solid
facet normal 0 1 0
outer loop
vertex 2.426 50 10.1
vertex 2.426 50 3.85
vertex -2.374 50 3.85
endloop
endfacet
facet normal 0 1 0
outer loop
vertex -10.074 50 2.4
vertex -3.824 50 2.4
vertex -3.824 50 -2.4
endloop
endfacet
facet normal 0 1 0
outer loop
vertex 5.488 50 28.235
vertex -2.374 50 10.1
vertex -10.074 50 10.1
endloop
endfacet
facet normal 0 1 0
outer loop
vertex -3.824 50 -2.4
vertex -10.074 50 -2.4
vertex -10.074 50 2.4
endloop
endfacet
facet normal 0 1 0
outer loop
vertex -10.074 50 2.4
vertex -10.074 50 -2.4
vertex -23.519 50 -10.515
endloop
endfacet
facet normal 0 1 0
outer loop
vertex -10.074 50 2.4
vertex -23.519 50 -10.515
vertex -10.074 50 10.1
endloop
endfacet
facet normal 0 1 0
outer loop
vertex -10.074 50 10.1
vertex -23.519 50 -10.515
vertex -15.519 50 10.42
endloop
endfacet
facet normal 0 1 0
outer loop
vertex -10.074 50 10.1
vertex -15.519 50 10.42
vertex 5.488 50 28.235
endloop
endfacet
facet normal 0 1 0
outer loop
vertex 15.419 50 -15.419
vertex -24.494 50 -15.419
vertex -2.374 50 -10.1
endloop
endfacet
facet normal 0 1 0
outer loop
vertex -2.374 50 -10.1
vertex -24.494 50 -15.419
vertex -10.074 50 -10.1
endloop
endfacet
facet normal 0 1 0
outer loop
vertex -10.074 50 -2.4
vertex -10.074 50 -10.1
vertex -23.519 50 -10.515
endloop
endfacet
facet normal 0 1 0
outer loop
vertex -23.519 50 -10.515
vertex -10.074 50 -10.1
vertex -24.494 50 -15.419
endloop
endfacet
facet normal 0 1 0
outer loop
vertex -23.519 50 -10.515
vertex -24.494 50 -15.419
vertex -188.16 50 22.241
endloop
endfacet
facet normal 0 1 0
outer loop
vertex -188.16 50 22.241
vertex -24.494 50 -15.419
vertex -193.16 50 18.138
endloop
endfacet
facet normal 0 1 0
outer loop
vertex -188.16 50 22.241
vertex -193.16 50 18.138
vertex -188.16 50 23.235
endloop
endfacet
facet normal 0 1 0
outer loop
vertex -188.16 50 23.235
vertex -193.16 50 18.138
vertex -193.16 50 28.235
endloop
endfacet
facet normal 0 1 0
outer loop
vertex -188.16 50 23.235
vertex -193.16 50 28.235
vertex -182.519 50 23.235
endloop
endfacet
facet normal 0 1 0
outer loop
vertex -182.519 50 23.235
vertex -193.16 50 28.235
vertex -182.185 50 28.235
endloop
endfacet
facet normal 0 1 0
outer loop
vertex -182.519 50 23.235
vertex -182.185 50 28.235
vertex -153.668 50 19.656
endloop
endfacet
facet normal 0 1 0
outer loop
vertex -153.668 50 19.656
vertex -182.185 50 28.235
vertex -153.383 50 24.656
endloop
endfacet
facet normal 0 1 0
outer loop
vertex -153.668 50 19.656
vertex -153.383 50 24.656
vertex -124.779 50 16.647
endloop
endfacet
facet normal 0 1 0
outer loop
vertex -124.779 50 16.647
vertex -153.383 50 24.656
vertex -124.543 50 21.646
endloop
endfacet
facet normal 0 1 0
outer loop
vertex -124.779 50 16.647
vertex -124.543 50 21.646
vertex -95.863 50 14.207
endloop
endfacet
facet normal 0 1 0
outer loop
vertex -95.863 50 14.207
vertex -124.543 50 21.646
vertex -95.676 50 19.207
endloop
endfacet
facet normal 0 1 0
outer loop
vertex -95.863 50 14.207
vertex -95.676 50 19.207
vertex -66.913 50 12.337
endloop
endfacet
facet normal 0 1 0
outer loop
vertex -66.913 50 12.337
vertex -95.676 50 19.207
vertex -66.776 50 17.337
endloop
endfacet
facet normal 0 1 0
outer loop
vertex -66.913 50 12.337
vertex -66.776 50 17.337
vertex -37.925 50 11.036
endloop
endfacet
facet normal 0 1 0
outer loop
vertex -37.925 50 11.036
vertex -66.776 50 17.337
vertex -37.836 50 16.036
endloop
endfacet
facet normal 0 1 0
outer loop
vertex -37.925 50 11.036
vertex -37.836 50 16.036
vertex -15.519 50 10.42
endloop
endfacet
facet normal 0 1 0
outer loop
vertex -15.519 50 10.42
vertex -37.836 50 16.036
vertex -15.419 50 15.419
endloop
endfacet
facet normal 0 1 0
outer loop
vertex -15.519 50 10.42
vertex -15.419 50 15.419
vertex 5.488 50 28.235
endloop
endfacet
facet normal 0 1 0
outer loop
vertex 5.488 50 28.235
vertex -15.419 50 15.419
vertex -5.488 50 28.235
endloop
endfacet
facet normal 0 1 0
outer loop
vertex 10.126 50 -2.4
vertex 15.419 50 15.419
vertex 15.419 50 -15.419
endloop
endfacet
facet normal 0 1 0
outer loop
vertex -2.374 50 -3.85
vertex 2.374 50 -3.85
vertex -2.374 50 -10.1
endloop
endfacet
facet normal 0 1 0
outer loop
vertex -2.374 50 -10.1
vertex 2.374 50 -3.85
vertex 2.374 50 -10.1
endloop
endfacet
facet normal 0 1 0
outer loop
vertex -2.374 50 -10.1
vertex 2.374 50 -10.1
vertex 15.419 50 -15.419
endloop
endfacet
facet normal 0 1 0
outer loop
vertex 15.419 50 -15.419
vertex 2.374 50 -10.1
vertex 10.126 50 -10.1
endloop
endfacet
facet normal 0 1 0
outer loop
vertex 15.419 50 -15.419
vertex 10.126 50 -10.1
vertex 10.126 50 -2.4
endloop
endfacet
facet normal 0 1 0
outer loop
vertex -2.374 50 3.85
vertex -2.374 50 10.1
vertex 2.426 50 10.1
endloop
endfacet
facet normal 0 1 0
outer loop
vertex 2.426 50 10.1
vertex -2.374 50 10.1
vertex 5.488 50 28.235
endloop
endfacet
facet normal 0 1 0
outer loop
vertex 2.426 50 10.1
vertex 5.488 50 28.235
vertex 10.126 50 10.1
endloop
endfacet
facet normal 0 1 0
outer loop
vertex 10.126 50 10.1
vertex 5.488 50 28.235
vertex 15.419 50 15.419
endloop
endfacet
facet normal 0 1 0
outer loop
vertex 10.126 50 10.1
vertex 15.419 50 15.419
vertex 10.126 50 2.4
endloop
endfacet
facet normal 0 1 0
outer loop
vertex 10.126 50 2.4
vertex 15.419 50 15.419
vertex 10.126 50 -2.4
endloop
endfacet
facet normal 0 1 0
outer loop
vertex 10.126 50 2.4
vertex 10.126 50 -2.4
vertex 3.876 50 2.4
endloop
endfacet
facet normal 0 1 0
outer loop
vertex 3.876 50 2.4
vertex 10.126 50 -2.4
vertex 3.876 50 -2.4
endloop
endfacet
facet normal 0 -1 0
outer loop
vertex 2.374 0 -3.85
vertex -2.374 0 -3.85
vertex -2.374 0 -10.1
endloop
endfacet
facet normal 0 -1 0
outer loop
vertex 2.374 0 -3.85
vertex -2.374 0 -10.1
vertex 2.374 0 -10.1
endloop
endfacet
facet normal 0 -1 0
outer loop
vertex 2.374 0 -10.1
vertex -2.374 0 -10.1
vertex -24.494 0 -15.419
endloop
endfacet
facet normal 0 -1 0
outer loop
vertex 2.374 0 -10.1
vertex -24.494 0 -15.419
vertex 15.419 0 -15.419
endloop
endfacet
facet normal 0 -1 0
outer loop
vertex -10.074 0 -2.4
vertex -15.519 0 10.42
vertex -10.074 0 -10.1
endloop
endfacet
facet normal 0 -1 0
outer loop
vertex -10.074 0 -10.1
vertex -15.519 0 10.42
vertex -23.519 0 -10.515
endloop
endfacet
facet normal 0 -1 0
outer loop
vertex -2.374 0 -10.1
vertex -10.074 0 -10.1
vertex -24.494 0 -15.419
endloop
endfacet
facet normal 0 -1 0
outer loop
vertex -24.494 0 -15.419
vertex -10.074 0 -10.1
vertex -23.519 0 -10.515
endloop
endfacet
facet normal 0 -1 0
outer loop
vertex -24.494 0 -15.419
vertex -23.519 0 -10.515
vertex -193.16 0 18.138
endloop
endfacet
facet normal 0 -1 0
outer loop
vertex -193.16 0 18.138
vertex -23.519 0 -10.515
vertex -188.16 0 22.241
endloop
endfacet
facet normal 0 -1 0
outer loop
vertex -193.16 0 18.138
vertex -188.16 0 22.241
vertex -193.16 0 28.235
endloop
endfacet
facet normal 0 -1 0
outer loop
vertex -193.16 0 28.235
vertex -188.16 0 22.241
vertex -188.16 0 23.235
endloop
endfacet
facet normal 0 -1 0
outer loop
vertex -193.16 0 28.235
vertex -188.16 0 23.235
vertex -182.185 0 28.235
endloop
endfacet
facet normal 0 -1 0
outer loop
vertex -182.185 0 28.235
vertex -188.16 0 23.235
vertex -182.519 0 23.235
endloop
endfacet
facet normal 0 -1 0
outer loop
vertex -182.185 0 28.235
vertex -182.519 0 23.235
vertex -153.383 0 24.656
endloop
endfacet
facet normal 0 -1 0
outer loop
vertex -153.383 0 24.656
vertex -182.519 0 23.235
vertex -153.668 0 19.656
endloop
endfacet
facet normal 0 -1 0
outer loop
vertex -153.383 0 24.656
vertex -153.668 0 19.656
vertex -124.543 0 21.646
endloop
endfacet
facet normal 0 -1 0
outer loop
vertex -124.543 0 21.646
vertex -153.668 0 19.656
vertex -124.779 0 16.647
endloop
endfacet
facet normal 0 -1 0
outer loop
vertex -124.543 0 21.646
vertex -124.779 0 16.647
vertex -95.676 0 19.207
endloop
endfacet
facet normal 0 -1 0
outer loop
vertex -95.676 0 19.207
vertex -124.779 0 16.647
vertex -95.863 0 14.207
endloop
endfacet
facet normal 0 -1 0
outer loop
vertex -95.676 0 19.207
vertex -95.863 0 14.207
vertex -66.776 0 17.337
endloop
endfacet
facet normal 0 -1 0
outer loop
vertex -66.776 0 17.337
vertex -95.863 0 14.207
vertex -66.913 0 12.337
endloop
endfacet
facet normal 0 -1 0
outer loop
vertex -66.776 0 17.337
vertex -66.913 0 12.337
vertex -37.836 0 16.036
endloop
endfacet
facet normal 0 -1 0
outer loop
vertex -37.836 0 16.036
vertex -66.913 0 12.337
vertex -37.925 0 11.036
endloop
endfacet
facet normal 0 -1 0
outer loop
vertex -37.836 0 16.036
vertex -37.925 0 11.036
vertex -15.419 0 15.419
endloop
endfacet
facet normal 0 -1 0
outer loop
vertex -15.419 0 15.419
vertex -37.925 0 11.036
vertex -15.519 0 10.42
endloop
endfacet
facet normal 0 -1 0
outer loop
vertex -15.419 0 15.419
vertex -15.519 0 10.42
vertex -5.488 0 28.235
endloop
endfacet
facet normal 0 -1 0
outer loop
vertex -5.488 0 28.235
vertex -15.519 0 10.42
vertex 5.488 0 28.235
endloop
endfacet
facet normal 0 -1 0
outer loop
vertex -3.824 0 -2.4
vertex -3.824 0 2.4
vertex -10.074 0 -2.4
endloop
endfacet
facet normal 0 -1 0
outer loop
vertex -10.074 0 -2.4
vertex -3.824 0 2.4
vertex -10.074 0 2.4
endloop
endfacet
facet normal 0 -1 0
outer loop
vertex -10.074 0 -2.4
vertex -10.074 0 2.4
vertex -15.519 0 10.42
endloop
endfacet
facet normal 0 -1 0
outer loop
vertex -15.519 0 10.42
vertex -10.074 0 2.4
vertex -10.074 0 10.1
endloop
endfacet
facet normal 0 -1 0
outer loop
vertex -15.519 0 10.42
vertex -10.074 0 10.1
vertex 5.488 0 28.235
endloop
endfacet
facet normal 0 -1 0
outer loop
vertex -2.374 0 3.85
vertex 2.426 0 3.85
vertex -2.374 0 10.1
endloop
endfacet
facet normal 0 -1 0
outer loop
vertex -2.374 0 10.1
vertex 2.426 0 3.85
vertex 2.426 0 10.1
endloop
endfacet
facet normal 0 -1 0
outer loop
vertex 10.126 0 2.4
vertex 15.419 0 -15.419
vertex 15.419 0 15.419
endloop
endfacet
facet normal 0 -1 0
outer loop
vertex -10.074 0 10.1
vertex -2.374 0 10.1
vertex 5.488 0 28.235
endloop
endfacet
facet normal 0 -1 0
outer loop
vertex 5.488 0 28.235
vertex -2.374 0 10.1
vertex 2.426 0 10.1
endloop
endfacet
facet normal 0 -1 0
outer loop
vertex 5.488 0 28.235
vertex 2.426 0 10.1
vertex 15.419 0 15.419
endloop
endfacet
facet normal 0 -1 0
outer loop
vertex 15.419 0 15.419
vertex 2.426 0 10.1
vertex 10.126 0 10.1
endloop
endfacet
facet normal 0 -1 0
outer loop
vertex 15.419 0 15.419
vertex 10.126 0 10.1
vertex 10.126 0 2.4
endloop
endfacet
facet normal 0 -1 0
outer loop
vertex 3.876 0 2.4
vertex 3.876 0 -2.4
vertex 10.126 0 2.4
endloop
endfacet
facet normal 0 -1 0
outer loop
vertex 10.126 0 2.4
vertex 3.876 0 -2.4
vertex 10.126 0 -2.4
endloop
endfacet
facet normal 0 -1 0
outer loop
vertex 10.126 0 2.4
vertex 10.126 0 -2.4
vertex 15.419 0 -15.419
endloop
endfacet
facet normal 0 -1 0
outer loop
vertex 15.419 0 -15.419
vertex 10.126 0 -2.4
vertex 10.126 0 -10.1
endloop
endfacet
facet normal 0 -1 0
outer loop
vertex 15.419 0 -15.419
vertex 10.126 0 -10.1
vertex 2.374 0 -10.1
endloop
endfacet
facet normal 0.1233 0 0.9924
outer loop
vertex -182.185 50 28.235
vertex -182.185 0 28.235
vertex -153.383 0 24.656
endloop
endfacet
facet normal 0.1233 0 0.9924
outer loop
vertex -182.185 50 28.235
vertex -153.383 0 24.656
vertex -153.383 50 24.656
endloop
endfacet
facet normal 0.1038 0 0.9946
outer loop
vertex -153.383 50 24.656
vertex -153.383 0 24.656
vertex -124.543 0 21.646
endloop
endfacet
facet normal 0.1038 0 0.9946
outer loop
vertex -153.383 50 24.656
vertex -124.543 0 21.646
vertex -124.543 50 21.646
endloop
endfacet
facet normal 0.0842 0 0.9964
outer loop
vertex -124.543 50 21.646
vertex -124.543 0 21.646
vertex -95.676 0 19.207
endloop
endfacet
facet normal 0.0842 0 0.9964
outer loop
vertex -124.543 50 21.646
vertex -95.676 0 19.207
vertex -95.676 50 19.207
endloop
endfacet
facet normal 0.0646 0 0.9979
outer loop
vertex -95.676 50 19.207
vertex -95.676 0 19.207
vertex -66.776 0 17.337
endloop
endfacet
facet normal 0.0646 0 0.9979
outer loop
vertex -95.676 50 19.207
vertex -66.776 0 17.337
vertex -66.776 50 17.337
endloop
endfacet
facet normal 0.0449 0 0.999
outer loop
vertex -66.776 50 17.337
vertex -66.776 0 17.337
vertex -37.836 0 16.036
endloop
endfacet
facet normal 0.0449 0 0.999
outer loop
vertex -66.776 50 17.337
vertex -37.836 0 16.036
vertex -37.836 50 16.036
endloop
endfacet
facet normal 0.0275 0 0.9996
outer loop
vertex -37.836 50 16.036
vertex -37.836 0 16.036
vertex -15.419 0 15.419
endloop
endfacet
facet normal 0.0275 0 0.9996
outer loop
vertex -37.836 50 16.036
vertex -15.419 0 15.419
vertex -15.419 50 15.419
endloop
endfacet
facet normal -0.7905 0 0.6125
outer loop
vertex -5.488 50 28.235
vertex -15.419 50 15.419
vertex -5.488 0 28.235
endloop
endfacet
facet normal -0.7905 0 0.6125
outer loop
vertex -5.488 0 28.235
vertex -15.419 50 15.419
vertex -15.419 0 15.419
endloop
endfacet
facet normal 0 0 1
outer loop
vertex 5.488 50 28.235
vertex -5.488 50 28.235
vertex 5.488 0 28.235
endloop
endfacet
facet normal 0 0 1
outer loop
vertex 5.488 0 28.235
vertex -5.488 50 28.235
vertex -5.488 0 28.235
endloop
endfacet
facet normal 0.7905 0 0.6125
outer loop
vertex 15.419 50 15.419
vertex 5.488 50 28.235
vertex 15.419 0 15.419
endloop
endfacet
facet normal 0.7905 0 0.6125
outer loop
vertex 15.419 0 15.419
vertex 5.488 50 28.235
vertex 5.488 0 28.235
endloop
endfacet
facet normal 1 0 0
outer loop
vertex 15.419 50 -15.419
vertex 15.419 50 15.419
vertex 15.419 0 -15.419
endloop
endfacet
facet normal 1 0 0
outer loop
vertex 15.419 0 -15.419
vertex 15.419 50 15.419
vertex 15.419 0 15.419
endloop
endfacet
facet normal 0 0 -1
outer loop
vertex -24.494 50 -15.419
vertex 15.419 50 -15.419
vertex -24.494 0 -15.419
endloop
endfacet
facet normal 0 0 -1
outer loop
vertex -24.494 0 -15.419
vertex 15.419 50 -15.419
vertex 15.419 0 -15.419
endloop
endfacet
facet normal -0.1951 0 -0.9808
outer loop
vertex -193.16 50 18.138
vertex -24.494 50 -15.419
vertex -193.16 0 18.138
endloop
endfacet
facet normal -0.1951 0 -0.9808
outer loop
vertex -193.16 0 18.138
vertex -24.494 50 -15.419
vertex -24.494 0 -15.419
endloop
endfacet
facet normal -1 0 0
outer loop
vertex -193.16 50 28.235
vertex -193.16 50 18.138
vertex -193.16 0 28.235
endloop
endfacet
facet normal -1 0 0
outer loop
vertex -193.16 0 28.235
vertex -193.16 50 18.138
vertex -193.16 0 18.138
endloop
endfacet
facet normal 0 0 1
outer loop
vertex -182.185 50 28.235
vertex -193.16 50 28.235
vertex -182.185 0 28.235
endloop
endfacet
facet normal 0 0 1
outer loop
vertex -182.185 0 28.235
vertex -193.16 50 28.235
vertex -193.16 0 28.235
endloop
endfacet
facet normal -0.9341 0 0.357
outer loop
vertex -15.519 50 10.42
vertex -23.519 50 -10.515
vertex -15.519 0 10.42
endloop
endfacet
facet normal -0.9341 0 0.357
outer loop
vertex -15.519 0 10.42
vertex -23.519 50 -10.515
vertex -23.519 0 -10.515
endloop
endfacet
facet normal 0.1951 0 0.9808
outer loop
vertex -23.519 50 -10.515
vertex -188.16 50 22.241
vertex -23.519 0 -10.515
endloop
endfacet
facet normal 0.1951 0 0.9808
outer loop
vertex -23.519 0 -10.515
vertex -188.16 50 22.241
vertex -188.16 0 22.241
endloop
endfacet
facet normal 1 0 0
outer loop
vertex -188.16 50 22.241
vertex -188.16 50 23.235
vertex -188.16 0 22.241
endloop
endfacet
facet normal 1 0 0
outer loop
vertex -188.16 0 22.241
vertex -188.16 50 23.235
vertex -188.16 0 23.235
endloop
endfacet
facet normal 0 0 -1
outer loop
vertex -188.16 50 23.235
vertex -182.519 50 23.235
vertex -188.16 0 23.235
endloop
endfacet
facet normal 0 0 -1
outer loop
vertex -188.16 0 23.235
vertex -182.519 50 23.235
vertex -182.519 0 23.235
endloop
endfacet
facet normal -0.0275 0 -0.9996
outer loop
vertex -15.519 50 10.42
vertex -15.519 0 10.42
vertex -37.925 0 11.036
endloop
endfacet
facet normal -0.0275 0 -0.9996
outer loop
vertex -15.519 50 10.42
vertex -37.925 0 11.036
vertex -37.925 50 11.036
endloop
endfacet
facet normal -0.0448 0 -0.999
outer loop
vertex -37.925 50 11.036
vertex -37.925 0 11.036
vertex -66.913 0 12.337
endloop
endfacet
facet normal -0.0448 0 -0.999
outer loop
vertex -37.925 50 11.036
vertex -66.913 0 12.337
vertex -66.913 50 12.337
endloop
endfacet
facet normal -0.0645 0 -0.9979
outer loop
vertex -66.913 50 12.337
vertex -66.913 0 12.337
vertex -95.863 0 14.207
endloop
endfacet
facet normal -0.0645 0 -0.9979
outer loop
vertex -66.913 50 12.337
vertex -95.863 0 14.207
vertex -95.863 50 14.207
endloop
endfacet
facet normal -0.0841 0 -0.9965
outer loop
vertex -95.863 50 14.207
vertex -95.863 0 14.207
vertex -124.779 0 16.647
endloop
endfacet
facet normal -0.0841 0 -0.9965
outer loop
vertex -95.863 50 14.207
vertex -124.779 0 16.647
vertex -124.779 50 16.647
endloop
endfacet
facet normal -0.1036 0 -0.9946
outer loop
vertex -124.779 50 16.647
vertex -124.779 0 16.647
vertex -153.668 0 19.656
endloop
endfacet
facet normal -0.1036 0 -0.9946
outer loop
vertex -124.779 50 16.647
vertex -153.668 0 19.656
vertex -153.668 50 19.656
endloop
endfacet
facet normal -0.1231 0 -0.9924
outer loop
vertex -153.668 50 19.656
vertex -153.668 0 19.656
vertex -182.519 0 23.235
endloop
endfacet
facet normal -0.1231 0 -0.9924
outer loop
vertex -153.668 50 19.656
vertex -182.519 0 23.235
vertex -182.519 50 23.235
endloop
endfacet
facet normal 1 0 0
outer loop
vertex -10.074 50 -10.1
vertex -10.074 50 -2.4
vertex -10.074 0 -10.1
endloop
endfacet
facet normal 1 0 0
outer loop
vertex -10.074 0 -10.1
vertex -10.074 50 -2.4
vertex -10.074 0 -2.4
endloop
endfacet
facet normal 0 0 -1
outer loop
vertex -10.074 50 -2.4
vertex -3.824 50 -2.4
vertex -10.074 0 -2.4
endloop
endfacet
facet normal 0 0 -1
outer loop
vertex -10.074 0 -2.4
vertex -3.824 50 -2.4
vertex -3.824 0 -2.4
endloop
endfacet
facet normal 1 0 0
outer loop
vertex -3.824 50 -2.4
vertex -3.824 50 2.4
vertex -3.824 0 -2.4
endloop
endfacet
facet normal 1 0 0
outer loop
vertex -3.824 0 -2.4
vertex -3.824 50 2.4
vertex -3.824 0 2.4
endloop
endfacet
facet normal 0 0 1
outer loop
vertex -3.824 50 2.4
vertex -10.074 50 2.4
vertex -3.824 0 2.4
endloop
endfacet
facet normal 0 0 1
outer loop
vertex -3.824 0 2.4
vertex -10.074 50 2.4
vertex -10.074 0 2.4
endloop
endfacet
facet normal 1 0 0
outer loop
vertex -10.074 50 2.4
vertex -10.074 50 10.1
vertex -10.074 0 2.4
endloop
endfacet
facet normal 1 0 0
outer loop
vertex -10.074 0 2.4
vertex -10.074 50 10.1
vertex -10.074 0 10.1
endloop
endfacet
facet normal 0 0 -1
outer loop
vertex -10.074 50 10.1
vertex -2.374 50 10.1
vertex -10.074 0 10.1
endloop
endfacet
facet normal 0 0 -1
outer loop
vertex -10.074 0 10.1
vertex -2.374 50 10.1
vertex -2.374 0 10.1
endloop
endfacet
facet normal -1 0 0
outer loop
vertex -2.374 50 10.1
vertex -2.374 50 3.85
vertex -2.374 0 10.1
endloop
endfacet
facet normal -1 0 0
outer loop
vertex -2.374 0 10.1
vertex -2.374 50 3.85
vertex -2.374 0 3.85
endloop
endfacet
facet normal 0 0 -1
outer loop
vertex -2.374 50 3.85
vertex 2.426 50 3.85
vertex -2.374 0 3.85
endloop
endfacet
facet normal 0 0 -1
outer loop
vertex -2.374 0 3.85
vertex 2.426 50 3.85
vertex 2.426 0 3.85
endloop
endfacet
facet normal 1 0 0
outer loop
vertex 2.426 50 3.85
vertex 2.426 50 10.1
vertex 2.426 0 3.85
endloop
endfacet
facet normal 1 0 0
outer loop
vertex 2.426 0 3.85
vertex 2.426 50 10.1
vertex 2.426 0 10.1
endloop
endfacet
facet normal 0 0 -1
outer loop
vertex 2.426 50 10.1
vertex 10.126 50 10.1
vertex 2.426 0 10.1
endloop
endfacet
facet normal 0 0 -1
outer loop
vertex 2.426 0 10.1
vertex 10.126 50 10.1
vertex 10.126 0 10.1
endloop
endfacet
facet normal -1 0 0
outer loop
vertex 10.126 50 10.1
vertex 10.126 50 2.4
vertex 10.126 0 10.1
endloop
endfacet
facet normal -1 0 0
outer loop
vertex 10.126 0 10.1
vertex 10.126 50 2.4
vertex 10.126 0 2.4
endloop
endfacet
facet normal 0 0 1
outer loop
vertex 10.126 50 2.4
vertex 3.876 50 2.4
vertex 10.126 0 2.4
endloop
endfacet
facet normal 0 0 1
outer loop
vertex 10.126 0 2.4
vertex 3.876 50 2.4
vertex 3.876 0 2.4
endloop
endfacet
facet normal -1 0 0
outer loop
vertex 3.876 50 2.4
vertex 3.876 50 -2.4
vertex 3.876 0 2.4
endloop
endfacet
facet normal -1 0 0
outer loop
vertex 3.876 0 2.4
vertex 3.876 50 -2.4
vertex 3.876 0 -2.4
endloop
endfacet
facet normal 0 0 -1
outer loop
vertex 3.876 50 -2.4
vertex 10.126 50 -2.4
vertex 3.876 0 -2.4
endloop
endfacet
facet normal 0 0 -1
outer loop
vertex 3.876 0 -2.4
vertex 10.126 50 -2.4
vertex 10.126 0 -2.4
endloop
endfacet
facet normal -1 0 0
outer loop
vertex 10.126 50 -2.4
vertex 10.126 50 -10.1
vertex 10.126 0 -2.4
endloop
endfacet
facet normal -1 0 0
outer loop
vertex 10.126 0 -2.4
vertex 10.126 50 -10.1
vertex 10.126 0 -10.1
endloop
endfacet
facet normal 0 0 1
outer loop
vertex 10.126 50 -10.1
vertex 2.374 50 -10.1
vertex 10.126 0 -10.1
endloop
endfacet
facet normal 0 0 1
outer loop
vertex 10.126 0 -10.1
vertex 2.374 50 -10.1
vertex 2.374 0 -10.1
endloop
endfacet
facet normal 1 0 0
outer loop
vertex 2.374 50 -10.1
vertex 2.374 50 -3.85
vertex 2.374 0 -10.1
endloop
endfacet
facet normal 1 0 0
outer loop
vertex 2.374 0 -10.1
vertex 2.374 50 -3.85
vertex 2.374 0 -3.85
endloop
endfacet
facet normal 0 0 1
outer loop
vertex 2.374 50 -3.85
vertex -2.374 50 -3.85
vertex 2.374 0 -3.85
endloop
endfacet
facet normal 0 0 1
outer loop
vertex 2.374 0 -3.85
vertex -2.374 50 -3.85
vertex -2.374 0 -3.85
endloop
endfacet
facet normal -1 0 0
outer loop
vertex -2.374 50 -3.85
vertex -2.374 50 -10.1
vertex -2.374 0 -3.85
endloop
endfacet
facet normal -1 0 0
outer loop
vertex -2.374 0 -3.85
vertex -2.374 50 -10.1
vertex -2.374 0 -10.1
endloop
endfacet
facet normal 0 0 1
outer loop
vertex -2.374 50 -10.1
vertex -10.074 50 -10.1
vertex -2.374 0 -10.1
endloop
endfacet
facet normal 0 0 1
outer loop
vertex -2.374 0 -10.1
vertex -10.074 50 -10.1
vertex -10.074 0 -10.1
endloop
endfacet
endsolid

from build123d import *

# Parameters (mm, degrees)
BOSS_EXTRU_1_DEPTH = 50


with BuildPart() as part:
    # Esquisse1 → Boss.-Extru.1 (new body)
    with BuildSketch(Plane(origin=(0, 0, 0), x_dir=(1, 0, 0), z_dir=(0, 1, 0))):
        with BuildLine():
            Line((15.419133563, -15.419133563), (15.419133563, 15.419133563))
            Line((15.419133563, 15.419133563), (-15.419133563, 15.419133563))
            Line((-15.419133563, 15.419133563), (-24.494437672, 15.419133563))
            Line((-24.494437672, 15.419133563), (-193.160150167, -18.138198396))
            Line((-193.160150167, -18.138198396), (-193.160150167, -28.234642357))
            Line((-193.160150167, -28.234642357), (-182.185114876, -28.234642357))
            add(Edge.make_bspline(
                [(-182.185114876, -28.234642357), (-99.136016822, -17.08659502), (-15.419133563, -15.419133563)],
                knots=[0, 0, 0, 1, 1, 1], degree=2))
            Line((-15.419133563, -15.419133563), (-5.487517645, -28.234642357))
            Line((-5.487517645, -28.234642357), (5.487517645, -28.234642357))
            Line((5.487517645, -28.234642357), (15.419133563, -15.419133563))
        make_face()
        Polygon((-10.073577327, 10.1), (-2.373577327, 10.1), (-2.373577327, 3.85), (2.373577327, 3.85), (2.373577327, 10.1), (10.126422673, 10.1), (10.126422673, 2.4), (3.876422673, 2.4), (3.876422673, -2.4), (10.126422673, -2.4), (10.126422673, -10.1), (2.426422673, -10.1), (2.426422673, -3.85), (-2.373577327, -3.85), (-2.373577327, -10.1), (-10.073577327, -10.1), (-10.073577327, -2.4), (-3.823577327, -2.4), (-3.823577327, 2.4), (-10.073577327, 2.4), align=None, mode=Mode.SUBTRACT)
        with BuildLine():
            Line((-23.518772506, 10.515249645), (-188.160150167, -22.241410157))
            Line((-188.160150167, -22.241410157), (-188.160150167, -23.234642357))
            Line((-188.160150167, -23.234642357), (-182.518919813, -23.234642357))
            add(Edge.make_bspline(
                [(-182.518919813, -23.234642357), (-99.352804626, -12.089945504), (-15.518703132, -10.420125071)],
                knots=[0.001988478, 0.001988478, 0.001988478, 1, 1, 1], degree=2))
            Line((-15.518703132, -10.420125071), (-23.518772506, 10.515249645))
        make_face(mode=Mode.SUBTRACT)
    extrude(amount=BOSS_EXTRU_1_DEPTH)


solid = part.part
